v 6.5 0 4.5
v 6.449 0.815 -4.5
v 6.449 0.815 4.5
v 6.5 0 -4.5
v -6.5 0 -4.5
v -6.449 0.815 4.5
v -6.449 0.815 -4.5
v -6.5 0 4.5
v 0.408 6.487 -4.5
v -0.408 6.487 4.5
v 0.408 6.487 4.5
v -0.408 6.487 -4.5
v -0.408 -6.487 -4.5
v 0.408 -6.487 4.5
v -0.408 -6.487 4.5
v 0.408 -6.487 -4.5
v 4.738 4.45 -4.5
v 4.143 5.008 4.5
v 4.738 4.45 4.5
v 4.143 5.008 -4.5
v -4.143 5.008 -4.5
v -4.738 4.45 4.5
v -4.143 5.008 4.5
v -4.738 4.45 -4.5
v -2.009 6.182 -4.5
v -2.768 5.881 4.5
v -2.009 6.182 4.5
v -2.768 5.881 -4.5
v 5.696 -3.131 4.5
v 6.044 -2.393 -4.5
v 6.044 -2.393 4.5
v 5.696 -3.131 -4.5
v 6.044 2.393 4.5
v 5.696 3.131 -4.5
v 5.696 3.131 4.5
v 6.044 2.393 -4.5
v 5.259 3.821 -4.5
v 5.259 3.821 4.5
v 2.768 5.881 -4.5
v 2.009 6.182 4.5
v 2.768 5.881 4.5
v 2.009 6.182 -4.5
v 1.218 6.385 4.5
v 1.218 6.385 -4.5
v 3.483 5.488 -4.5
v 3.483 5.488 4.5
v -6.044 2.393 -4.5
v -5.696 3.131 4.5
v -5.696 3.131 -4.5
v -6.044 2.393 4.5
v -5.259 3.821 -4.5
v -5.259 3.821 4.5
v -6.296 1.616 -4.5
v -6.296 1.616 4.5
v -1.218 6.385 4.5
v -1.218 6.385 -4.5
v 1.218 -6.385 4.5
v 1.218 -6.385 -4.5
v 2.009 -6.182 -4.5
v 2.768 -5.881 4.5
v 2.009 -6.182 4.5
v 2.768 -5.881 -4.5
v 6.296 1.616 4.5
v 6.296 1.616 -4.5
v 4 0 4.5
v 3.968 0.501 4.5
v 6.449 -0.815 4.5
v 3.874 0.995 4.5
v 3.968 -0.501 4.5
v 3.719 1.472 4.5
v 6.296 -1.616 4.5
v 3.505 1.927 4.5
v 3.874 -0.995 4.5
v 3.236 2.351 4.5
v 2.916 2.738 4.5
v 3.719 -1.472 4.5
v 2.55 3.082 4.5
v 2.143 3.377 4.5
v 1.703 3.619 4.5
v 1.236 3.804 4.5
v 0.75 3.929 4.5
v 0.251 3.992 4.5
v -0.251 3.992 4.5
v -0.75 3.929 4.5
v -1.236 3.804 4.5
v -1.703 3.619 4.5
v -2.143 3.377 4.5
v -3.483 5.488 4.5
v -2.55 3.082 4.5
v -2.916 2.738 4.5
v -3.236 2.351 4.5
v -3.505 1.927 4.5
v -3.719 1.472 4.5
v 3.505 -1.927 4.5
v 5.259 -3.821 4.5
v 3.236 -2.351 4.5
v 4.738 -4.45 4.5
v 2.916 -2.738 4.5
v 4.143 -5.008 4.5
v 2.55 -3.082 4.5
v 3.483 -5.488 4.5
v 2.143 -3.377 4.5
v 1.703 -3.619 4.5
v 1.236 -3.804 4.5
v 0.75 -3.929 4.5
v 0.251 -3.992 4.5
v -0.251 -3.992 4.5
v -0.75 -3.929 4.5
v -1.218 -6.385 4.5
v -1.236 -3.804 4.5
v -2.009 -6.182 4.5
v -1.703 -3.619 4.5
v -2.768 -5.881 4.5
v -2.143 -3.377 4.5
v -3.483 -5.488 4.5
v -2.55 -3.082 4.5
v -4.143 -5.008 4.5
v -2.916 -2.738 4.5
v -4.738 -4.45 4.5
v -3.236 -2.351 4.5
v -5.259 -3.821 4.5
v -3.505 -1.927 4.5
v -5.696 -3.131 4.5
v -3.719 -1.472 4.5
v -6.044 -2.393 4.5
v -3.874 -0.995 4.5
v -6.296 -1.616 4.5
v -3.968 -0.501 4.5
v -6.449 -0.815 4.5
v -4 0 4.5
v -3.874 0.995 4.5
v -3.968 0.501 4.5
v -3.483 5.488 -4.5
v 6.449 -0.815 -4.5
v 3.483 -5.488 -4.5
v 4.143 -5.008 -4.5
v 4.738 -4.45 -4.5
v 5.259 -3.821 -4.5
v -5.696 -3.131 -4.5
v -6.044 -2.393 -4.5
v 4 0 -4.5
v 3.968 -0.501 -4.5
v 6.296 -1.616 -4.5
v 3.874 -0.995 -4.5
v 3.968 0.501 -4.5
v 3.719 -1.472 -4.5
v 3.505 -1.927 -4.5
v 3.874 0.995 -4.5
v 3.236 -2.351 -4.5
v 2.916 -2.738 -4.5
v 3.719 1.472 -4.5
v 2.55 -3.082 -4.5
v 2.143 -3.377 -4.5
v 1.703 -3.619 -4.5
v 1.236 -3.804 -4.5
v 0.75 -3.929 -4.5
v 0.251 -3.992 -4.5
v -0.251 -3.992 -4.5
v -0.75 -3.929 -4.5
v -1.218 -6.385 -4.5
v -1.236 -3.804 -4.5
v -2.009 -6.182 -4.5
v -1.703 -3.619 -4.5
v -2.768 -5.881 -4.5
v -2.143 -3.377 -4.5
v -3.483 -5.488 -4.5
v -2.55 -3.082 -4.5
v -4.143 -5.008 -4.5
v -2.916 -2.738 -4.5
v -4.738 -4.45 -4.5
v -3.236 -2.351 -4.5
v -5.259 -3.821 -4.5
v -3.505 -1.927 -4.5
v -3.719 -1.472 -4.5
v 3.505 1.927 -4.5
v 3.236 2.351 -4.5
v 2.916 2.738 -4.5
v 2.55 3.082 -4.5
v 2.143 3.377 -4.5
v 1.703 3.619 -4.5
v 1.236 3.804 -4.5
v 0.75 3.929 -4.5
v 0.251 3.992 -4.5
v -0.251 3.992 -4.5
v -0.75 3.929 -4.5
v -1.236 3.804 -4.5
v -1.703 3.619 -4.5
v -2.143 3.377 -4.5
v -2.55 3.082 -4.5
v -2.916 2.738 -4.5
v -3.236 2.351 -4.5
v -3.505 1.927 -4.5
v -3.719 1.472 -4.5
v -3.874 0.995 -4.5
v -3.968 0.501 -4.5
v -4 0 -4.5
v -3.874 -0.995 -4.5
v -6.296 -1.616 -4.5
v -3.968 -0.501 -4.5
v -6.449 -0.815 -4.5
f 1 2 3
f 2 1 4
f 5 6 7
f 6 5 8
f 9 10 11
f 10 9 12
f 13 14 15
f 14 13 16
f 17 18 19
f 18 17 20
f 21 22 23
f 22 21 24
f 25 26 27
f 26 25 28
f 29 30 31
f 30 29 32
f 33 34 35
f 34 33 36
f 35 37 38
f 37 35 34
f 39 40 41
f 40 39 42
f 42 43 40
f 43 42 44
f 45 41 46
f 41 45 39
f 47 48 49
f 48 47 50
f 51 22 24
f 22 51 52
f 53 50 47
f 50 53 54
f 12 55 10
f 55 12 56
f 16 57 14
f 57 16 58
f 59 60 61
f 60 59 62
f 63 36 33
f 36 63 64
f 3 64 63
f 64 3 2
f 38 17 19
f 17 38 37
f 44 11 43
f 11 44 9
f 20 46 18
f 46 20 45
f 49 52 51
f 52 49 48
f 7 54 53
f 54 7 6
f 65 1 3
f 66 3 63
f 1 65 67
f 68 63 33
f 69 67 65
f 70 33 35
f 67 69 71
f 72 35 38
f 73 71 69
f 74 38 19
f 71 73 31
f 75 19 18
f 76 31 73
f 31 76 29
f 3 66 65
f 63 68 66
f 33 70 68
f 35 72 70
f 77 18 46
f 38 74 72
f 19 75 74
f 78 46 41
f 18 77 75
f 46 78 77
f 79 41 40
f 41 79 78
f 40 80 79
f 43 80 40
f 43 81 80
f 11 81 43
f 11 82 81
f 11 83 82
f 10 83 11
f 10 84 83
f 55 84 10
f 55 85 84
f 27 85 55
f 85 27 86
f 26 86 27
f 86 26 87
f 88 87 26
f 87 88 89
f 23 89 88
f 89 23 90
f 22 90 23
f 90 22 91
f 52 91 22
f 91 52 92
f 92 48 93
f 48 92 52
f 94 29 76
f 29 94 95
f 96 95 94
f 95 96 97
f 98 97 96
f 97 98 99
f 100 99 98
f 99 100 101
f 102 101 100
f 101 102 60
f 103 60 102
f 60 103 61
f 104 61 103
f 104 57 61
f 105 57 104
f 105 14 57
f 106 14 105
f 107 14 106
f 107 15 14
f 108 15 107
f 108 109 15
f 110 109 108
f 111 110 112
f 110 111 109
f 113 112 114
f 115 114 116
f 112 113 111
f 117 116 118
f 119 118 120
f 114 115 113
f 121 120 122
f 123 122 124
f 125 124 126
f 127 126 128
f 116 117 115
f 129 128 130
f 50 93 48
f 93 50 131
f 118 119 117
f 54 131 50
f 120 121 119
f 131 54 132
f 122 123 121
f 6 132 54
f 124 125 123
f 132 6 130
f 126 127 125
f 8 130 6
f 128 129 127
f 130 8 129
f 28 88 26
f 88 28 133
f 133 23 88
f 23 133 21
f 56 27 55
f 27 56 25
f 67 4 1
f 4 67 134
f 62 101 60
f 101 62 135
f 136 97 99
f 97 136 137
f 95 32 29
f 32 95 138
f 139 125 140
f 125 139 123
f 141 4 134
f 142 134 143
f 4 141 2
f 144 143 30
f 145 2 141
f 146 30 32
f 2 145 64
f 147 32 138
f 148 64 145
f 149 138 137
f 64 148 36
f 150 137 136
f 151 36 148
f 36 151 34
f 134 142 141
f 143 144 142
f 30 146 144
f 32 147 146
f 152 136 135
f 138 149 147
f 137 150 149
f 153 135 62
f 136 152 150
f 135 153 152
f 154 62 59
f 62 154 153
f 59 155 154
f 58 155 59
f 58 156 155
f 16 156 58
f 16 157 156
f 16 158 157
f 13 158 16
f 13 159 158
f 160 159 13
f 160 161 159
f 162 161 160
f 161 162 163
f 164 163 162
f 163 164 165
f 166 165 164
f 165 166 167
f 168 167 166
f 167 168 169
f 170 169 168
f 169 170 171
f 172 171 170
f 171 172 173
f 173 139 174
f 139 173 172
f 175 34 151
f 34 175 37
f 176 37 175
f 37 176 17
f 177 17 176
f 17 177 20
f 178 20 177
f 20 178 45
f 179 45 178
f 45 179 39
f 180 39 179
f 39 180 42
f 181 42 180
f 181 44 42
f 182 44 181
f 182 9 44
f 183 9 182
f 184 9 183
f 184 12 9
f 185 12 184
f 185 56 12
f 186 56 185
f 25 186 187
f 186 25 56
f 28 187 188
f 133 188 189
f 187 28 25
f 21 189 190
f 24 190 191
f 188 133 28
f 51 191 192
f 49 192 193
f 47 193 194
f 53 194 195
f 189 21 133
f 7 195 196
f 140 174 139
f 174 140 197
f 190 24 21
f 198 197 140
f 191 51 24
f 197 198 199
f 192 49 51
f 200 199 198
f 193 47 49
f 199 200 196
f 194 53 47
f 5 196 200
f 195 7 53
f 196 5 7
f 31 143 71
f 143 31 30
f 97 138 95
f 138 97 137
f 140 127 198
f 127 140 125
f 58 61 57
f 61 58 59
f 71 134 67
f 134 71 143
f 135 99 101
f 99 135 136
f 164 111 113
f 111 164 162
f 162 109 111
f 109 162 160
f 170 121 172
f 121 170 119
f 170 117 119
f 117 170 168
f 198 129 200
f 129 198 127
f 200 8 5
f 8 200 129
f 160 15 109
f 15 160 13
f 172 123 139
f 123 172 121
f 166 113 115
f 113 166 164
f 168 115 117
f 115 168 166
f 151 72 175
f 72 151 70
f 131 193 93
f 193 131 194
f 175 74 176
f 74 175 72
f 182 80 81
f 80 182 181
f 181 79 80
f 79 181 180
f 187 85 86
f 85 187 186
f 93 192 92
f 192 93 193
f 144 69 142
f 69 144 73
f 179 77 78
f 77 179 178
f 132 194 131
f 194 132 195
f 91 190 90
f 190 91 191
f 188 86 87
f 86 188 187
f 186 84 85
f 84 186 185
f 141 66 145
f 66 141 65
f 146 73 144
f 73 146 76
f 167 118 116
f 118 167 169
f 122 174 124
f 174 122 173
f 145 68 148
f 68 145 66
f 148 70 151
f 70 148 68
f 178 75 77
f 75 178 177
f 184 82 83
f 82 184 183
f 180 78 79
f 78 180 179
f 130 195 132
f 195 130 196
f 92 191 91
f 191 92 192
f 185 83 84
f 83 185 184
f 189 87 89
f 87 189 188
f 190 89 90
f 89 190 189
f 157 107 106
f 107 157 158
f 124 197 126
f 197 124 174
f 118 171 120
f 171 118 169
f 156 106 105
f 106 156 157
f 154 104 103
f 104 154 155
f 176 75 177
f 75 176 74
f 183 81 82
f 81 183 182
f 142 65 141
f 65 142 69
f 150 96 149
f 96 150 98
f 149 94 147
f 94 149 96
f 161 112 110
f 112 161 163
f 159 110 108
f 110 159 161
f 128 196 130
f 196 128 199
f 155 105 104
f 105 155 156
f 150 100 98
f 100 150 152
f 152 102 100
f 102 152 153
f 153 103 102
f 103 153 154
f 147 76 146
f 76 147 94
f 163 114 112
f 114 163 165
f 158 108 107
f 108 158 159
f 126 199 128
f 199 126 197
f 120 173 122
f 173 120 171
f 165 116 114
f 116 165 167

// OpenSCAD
$fn = 50;


difference() {
	union() {
		translate(v = [0, 0, -4.5000000000]) {
			cylinder(h = 9, r = 6.5000000000);
		}
	}
	union() {
		translate(v = [0, 0, -100.0000000000]) {
			cylinder(h = 200, r = 4);
		}
	}
}
